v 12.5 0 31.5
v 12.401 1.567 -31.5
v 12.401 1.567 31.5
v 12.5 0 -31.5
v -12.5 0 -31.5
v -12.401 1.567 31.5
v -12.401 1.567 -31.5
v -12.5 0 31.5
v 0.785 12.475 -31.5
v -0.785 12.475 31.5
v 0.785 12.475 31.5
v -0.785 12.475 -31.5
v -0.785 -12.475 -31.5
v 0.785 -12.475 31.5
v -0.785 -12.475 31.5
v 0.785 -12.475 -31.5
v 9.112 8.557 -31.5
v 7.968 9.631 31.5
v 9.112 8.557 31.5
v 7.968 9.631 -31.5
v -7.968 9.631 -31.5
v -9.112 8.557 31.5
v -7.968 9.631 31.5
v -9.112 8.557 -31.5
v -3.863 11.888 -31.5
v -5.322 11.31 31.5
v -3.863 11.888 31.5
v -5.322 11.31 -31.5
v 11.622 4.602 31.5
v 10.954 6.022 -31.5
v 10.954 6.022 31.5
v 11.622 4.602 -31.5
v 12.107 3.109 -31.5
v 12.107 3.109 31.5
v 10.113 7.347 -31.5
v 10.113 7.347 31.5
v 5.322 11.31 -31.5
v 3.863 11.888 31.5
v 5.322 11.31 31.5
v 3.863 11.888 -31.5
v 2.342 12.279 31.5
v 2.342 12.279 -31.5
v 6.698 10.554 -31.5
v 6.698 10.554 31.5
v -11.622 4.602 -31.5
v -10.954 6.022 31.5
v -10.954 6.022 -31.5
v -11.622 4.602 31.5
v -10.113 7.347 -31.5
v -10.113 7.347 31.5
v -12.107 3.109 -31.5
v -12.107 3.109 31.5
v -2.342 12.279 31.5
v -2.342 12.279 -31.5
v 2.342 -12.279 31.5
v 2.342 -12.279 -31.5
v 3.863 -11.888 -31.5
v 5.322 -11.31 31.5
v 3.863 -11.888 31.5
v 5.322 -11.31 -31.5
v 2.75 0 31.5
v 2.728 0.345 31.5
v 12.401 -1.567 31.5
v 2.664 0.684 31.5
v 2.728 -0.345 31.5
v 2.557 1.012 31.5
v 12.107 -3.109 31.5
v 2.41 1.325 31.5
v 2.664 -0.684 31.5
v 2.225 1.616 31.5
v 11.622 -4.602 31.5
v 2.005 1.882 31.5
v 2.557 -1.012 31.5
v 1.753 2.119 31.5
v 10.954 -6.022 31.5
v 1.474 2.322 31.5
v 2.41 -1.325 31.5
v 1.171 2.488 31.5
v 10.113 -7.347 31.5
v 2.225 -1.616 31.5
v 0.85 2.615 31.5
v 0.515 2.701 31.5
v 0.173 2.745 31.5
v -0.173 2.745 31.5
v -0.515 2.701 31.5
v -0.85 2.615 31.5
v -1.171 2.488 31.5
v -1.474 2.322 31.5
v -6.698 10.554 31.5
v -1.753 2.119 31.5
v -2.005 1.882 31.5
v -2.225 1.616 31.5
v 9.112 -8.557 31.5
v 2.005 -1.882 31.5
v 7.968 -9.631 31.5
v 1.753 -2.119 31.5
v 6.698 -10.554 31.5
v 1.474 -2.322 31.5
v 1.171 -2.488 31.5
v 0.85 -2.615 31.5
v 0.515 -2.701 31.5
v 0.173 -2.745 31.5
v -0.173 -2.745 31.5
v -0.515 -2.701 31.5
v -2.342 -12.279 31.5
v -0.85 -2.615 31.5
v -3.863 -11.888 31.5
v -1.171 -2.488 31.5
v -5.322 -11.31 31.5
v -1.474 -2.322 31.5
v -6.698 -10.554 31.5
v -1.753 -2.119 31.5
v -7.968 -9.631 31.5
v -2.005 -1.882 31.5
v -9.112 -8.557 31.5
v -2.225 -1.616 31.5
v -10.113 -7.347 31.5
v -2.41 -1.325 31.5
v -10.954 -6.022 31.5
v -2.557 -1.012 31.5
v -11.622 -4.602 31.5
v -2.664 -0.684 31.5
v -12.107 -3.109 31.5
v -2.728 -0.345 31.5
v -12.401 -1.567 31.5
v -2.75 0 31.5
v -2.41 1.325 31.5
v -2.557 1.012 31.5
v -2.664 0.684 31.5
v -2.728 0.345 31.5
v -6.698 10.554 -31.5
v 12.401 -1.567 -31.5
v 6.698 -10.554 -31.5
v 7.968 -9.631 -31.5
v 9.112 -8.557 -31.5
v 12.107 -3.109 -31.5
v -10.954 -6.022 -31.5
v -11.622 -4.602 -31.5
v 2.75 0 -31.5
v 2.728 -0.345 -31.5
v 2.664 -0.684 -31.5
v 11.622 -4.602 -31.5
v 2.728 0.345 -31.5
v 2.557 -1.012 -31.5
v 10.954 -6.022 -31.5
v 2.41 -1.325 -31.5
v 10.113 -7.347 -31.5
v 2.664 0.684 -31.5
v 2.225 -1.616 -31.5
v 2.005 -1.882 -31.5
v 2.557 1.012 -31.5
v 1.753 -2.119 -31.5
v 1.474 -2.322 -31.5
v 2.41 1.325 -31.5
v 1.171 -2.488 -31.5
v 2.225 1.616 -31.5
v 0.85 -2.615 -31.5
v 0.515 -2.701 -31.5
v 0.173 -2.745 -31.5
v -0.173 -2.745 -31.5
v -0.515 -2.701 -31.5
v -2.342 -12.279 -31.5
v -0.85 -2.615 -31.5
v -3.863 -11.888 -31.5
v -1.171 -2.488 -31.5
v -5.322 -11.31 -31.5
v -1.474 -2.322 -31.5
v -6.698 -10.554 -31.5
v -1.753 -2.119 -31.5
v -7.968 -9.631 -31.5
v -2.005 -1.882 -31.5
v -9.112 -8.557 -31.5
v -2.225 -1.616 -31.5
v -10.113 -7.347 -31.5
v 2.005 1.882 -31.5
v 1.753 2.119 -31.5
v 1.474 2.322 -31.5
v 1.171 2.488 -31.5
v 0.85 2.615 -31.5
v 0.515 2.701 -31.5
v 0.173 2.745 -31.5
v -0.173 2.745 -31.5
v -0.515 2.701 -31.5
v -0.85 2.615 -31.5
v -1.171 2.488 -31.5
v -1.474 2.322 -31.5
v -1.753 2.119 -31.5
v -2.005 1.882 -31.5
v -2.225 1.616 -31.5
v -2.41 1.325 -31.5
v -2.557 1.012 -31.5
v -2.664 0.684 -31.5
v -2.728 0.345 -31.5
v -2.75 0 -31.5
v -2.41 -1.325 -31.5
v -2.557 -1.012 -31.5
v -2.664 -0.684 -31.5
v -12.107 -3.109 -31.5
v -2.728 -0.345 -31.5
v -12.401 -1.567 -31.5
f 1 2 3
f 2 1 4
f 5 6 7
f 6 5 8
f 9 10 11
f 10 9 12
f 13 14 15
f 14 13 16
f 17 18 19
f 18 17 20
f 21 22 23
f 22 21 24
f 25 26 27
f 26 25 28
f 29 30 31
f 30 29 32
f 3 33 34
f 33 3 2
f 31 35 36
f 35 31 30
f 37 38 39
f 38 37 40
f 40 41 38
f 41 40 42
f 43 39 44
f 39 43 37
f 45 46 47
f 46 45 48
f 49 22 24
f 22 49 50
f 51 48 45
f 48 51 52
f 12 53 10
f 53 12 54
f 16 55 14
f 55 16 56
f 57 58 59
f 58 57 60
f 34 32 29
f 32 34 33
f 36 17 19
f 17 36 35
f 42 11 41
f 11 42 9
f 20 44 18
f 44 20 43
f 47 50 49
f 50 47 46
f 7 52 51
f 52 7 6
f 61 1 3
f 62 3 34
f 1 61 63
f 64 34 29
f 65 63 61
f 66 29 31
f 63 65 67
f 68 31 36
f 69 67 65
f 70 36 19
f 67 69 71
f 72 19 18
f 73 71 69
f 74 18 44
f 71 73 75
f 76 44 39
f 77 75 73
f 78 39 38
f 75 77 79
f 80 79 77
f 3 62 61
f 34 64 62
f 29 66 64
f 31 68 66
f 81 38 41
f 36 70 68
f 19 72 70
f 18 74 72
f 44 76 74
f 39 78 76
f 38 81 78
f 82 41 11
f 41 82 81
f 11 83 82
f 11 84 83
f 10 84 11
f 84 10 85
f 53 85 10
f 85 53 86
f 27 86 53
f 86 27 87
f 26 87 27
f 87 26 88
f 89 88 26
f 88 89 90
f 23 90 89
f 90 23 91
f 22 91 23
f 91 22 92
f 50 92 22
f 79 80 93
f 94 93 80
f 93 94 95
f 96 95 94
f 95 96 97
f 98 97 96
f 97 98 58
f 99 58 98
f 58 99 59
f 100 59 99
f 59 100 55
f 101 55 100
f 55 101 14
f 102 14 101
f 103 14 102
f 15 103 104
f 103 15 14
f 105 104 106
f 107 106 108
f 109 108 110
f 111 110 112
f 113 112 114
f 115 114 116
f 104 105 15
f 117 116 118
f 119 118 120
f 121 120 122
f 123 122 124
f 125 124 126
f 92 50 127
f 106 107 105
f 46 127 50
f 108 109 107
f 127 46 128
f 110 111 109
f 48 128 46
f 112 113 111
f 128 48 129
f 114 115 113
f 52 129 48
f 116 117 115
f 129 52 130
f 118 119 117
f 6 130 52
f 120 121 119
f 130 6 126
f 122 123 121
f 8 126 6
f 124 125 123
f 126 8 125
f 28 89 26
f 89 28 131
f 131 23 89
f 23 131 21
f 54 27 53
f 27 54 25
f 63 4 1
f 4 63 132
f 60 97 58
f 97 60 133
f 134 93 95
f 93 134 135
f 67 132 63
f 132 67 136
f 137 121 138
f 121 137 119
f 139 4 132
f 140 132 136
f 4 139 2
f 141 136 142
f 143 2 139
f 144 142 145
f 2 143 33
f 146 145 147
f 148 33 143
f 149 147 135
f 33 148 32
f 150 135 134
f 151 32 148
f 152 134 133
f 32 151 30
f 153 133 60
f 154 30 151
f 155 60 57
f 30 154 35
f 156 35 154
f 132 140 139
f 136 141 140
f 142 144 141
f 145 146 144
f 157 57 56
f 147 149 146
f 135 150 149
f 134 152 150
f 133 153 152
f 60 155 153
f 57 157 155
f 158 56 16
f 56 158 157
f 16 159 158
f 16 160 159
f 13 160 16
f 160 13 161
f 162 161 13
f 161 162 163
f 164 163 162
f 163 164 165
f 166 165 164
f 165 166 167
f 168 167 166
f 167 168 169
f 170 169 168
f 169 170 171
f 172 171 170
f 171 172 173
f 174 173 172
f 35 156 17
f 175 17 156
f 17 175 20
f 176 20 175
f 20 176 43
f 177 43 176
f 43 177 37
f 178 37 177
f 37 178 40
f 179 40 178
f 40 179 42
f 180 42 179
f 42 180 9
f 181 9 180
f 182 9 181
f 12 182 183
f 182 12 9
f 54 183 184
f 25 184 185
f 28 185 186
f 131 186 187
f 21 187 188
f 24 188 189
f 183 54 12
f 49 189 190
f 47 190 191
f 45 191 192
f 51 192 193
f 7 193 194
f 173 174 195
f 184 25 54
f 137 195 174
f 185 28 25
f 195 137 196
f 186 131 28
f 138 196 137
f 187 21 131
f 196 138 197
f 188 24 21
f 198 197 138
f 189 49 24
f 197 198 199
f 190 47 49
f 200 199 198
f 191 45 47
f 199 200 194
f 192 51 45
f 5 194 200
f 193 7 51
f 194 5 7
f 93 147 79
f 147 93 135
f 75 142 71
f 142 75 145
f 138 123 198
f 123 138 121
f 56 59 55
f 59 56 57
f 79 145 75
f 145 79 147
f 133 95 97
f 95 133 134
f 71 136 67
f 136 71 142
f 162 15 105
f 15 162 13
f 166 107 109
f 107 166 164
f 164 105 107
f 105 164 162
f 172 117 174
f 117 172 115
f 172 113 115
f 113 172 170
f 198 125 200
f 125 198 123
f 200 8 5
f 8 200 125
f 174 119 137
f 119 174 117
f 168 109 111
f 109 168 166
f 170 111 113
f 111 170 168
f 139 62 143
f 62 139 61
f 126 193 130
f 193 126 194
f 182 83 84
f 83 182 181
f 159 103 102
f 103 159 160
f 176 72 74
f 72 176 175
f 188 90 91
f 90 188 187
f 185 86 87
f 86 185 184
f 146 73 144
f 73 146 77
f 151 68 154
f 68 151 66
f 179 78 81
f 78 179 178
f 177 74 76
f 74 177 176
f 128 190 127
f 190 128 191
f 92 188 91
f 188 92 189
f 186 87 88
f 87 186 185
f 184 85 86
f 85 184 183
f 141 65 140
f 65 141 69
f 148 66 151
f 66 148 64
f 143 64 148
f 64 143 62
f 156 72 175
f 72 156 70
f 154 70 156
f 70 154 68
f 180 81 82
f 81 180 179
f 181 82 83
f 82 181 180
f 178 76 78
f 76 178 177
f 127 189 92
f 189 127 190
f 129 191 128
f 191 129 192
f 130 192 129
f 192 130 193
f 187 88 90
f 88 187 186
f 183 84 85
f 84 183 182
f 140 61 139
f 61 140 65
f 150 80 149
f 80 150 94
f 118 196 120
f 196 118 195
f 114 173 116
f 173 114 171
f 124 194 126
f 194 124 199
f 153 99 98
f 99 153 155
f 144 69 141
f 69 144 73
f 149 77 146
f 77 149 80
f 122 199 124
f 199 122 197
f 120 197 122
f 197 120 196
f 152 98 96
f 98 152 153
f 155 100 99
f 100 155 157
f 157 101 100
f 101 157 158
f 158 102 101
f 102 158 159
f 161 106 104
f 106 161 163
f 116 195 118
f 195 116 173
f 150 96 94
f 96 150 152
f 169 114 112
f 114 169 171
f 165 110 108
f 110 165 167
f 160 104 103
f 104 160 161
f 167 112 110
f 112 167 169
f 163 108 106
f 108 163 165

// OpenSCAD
$fn = 50;


difference() {
	union() {
		translate(v = [0, 0, -31.5000000000]) {
			cylinder(h = 63, r = 12.5000000000);
		}
	}
	union() {
		translate(v = [0, 0, -100.0000000000]) {
			cylinder(h = 200, r = 2.7500000000);
		}
	}
}
